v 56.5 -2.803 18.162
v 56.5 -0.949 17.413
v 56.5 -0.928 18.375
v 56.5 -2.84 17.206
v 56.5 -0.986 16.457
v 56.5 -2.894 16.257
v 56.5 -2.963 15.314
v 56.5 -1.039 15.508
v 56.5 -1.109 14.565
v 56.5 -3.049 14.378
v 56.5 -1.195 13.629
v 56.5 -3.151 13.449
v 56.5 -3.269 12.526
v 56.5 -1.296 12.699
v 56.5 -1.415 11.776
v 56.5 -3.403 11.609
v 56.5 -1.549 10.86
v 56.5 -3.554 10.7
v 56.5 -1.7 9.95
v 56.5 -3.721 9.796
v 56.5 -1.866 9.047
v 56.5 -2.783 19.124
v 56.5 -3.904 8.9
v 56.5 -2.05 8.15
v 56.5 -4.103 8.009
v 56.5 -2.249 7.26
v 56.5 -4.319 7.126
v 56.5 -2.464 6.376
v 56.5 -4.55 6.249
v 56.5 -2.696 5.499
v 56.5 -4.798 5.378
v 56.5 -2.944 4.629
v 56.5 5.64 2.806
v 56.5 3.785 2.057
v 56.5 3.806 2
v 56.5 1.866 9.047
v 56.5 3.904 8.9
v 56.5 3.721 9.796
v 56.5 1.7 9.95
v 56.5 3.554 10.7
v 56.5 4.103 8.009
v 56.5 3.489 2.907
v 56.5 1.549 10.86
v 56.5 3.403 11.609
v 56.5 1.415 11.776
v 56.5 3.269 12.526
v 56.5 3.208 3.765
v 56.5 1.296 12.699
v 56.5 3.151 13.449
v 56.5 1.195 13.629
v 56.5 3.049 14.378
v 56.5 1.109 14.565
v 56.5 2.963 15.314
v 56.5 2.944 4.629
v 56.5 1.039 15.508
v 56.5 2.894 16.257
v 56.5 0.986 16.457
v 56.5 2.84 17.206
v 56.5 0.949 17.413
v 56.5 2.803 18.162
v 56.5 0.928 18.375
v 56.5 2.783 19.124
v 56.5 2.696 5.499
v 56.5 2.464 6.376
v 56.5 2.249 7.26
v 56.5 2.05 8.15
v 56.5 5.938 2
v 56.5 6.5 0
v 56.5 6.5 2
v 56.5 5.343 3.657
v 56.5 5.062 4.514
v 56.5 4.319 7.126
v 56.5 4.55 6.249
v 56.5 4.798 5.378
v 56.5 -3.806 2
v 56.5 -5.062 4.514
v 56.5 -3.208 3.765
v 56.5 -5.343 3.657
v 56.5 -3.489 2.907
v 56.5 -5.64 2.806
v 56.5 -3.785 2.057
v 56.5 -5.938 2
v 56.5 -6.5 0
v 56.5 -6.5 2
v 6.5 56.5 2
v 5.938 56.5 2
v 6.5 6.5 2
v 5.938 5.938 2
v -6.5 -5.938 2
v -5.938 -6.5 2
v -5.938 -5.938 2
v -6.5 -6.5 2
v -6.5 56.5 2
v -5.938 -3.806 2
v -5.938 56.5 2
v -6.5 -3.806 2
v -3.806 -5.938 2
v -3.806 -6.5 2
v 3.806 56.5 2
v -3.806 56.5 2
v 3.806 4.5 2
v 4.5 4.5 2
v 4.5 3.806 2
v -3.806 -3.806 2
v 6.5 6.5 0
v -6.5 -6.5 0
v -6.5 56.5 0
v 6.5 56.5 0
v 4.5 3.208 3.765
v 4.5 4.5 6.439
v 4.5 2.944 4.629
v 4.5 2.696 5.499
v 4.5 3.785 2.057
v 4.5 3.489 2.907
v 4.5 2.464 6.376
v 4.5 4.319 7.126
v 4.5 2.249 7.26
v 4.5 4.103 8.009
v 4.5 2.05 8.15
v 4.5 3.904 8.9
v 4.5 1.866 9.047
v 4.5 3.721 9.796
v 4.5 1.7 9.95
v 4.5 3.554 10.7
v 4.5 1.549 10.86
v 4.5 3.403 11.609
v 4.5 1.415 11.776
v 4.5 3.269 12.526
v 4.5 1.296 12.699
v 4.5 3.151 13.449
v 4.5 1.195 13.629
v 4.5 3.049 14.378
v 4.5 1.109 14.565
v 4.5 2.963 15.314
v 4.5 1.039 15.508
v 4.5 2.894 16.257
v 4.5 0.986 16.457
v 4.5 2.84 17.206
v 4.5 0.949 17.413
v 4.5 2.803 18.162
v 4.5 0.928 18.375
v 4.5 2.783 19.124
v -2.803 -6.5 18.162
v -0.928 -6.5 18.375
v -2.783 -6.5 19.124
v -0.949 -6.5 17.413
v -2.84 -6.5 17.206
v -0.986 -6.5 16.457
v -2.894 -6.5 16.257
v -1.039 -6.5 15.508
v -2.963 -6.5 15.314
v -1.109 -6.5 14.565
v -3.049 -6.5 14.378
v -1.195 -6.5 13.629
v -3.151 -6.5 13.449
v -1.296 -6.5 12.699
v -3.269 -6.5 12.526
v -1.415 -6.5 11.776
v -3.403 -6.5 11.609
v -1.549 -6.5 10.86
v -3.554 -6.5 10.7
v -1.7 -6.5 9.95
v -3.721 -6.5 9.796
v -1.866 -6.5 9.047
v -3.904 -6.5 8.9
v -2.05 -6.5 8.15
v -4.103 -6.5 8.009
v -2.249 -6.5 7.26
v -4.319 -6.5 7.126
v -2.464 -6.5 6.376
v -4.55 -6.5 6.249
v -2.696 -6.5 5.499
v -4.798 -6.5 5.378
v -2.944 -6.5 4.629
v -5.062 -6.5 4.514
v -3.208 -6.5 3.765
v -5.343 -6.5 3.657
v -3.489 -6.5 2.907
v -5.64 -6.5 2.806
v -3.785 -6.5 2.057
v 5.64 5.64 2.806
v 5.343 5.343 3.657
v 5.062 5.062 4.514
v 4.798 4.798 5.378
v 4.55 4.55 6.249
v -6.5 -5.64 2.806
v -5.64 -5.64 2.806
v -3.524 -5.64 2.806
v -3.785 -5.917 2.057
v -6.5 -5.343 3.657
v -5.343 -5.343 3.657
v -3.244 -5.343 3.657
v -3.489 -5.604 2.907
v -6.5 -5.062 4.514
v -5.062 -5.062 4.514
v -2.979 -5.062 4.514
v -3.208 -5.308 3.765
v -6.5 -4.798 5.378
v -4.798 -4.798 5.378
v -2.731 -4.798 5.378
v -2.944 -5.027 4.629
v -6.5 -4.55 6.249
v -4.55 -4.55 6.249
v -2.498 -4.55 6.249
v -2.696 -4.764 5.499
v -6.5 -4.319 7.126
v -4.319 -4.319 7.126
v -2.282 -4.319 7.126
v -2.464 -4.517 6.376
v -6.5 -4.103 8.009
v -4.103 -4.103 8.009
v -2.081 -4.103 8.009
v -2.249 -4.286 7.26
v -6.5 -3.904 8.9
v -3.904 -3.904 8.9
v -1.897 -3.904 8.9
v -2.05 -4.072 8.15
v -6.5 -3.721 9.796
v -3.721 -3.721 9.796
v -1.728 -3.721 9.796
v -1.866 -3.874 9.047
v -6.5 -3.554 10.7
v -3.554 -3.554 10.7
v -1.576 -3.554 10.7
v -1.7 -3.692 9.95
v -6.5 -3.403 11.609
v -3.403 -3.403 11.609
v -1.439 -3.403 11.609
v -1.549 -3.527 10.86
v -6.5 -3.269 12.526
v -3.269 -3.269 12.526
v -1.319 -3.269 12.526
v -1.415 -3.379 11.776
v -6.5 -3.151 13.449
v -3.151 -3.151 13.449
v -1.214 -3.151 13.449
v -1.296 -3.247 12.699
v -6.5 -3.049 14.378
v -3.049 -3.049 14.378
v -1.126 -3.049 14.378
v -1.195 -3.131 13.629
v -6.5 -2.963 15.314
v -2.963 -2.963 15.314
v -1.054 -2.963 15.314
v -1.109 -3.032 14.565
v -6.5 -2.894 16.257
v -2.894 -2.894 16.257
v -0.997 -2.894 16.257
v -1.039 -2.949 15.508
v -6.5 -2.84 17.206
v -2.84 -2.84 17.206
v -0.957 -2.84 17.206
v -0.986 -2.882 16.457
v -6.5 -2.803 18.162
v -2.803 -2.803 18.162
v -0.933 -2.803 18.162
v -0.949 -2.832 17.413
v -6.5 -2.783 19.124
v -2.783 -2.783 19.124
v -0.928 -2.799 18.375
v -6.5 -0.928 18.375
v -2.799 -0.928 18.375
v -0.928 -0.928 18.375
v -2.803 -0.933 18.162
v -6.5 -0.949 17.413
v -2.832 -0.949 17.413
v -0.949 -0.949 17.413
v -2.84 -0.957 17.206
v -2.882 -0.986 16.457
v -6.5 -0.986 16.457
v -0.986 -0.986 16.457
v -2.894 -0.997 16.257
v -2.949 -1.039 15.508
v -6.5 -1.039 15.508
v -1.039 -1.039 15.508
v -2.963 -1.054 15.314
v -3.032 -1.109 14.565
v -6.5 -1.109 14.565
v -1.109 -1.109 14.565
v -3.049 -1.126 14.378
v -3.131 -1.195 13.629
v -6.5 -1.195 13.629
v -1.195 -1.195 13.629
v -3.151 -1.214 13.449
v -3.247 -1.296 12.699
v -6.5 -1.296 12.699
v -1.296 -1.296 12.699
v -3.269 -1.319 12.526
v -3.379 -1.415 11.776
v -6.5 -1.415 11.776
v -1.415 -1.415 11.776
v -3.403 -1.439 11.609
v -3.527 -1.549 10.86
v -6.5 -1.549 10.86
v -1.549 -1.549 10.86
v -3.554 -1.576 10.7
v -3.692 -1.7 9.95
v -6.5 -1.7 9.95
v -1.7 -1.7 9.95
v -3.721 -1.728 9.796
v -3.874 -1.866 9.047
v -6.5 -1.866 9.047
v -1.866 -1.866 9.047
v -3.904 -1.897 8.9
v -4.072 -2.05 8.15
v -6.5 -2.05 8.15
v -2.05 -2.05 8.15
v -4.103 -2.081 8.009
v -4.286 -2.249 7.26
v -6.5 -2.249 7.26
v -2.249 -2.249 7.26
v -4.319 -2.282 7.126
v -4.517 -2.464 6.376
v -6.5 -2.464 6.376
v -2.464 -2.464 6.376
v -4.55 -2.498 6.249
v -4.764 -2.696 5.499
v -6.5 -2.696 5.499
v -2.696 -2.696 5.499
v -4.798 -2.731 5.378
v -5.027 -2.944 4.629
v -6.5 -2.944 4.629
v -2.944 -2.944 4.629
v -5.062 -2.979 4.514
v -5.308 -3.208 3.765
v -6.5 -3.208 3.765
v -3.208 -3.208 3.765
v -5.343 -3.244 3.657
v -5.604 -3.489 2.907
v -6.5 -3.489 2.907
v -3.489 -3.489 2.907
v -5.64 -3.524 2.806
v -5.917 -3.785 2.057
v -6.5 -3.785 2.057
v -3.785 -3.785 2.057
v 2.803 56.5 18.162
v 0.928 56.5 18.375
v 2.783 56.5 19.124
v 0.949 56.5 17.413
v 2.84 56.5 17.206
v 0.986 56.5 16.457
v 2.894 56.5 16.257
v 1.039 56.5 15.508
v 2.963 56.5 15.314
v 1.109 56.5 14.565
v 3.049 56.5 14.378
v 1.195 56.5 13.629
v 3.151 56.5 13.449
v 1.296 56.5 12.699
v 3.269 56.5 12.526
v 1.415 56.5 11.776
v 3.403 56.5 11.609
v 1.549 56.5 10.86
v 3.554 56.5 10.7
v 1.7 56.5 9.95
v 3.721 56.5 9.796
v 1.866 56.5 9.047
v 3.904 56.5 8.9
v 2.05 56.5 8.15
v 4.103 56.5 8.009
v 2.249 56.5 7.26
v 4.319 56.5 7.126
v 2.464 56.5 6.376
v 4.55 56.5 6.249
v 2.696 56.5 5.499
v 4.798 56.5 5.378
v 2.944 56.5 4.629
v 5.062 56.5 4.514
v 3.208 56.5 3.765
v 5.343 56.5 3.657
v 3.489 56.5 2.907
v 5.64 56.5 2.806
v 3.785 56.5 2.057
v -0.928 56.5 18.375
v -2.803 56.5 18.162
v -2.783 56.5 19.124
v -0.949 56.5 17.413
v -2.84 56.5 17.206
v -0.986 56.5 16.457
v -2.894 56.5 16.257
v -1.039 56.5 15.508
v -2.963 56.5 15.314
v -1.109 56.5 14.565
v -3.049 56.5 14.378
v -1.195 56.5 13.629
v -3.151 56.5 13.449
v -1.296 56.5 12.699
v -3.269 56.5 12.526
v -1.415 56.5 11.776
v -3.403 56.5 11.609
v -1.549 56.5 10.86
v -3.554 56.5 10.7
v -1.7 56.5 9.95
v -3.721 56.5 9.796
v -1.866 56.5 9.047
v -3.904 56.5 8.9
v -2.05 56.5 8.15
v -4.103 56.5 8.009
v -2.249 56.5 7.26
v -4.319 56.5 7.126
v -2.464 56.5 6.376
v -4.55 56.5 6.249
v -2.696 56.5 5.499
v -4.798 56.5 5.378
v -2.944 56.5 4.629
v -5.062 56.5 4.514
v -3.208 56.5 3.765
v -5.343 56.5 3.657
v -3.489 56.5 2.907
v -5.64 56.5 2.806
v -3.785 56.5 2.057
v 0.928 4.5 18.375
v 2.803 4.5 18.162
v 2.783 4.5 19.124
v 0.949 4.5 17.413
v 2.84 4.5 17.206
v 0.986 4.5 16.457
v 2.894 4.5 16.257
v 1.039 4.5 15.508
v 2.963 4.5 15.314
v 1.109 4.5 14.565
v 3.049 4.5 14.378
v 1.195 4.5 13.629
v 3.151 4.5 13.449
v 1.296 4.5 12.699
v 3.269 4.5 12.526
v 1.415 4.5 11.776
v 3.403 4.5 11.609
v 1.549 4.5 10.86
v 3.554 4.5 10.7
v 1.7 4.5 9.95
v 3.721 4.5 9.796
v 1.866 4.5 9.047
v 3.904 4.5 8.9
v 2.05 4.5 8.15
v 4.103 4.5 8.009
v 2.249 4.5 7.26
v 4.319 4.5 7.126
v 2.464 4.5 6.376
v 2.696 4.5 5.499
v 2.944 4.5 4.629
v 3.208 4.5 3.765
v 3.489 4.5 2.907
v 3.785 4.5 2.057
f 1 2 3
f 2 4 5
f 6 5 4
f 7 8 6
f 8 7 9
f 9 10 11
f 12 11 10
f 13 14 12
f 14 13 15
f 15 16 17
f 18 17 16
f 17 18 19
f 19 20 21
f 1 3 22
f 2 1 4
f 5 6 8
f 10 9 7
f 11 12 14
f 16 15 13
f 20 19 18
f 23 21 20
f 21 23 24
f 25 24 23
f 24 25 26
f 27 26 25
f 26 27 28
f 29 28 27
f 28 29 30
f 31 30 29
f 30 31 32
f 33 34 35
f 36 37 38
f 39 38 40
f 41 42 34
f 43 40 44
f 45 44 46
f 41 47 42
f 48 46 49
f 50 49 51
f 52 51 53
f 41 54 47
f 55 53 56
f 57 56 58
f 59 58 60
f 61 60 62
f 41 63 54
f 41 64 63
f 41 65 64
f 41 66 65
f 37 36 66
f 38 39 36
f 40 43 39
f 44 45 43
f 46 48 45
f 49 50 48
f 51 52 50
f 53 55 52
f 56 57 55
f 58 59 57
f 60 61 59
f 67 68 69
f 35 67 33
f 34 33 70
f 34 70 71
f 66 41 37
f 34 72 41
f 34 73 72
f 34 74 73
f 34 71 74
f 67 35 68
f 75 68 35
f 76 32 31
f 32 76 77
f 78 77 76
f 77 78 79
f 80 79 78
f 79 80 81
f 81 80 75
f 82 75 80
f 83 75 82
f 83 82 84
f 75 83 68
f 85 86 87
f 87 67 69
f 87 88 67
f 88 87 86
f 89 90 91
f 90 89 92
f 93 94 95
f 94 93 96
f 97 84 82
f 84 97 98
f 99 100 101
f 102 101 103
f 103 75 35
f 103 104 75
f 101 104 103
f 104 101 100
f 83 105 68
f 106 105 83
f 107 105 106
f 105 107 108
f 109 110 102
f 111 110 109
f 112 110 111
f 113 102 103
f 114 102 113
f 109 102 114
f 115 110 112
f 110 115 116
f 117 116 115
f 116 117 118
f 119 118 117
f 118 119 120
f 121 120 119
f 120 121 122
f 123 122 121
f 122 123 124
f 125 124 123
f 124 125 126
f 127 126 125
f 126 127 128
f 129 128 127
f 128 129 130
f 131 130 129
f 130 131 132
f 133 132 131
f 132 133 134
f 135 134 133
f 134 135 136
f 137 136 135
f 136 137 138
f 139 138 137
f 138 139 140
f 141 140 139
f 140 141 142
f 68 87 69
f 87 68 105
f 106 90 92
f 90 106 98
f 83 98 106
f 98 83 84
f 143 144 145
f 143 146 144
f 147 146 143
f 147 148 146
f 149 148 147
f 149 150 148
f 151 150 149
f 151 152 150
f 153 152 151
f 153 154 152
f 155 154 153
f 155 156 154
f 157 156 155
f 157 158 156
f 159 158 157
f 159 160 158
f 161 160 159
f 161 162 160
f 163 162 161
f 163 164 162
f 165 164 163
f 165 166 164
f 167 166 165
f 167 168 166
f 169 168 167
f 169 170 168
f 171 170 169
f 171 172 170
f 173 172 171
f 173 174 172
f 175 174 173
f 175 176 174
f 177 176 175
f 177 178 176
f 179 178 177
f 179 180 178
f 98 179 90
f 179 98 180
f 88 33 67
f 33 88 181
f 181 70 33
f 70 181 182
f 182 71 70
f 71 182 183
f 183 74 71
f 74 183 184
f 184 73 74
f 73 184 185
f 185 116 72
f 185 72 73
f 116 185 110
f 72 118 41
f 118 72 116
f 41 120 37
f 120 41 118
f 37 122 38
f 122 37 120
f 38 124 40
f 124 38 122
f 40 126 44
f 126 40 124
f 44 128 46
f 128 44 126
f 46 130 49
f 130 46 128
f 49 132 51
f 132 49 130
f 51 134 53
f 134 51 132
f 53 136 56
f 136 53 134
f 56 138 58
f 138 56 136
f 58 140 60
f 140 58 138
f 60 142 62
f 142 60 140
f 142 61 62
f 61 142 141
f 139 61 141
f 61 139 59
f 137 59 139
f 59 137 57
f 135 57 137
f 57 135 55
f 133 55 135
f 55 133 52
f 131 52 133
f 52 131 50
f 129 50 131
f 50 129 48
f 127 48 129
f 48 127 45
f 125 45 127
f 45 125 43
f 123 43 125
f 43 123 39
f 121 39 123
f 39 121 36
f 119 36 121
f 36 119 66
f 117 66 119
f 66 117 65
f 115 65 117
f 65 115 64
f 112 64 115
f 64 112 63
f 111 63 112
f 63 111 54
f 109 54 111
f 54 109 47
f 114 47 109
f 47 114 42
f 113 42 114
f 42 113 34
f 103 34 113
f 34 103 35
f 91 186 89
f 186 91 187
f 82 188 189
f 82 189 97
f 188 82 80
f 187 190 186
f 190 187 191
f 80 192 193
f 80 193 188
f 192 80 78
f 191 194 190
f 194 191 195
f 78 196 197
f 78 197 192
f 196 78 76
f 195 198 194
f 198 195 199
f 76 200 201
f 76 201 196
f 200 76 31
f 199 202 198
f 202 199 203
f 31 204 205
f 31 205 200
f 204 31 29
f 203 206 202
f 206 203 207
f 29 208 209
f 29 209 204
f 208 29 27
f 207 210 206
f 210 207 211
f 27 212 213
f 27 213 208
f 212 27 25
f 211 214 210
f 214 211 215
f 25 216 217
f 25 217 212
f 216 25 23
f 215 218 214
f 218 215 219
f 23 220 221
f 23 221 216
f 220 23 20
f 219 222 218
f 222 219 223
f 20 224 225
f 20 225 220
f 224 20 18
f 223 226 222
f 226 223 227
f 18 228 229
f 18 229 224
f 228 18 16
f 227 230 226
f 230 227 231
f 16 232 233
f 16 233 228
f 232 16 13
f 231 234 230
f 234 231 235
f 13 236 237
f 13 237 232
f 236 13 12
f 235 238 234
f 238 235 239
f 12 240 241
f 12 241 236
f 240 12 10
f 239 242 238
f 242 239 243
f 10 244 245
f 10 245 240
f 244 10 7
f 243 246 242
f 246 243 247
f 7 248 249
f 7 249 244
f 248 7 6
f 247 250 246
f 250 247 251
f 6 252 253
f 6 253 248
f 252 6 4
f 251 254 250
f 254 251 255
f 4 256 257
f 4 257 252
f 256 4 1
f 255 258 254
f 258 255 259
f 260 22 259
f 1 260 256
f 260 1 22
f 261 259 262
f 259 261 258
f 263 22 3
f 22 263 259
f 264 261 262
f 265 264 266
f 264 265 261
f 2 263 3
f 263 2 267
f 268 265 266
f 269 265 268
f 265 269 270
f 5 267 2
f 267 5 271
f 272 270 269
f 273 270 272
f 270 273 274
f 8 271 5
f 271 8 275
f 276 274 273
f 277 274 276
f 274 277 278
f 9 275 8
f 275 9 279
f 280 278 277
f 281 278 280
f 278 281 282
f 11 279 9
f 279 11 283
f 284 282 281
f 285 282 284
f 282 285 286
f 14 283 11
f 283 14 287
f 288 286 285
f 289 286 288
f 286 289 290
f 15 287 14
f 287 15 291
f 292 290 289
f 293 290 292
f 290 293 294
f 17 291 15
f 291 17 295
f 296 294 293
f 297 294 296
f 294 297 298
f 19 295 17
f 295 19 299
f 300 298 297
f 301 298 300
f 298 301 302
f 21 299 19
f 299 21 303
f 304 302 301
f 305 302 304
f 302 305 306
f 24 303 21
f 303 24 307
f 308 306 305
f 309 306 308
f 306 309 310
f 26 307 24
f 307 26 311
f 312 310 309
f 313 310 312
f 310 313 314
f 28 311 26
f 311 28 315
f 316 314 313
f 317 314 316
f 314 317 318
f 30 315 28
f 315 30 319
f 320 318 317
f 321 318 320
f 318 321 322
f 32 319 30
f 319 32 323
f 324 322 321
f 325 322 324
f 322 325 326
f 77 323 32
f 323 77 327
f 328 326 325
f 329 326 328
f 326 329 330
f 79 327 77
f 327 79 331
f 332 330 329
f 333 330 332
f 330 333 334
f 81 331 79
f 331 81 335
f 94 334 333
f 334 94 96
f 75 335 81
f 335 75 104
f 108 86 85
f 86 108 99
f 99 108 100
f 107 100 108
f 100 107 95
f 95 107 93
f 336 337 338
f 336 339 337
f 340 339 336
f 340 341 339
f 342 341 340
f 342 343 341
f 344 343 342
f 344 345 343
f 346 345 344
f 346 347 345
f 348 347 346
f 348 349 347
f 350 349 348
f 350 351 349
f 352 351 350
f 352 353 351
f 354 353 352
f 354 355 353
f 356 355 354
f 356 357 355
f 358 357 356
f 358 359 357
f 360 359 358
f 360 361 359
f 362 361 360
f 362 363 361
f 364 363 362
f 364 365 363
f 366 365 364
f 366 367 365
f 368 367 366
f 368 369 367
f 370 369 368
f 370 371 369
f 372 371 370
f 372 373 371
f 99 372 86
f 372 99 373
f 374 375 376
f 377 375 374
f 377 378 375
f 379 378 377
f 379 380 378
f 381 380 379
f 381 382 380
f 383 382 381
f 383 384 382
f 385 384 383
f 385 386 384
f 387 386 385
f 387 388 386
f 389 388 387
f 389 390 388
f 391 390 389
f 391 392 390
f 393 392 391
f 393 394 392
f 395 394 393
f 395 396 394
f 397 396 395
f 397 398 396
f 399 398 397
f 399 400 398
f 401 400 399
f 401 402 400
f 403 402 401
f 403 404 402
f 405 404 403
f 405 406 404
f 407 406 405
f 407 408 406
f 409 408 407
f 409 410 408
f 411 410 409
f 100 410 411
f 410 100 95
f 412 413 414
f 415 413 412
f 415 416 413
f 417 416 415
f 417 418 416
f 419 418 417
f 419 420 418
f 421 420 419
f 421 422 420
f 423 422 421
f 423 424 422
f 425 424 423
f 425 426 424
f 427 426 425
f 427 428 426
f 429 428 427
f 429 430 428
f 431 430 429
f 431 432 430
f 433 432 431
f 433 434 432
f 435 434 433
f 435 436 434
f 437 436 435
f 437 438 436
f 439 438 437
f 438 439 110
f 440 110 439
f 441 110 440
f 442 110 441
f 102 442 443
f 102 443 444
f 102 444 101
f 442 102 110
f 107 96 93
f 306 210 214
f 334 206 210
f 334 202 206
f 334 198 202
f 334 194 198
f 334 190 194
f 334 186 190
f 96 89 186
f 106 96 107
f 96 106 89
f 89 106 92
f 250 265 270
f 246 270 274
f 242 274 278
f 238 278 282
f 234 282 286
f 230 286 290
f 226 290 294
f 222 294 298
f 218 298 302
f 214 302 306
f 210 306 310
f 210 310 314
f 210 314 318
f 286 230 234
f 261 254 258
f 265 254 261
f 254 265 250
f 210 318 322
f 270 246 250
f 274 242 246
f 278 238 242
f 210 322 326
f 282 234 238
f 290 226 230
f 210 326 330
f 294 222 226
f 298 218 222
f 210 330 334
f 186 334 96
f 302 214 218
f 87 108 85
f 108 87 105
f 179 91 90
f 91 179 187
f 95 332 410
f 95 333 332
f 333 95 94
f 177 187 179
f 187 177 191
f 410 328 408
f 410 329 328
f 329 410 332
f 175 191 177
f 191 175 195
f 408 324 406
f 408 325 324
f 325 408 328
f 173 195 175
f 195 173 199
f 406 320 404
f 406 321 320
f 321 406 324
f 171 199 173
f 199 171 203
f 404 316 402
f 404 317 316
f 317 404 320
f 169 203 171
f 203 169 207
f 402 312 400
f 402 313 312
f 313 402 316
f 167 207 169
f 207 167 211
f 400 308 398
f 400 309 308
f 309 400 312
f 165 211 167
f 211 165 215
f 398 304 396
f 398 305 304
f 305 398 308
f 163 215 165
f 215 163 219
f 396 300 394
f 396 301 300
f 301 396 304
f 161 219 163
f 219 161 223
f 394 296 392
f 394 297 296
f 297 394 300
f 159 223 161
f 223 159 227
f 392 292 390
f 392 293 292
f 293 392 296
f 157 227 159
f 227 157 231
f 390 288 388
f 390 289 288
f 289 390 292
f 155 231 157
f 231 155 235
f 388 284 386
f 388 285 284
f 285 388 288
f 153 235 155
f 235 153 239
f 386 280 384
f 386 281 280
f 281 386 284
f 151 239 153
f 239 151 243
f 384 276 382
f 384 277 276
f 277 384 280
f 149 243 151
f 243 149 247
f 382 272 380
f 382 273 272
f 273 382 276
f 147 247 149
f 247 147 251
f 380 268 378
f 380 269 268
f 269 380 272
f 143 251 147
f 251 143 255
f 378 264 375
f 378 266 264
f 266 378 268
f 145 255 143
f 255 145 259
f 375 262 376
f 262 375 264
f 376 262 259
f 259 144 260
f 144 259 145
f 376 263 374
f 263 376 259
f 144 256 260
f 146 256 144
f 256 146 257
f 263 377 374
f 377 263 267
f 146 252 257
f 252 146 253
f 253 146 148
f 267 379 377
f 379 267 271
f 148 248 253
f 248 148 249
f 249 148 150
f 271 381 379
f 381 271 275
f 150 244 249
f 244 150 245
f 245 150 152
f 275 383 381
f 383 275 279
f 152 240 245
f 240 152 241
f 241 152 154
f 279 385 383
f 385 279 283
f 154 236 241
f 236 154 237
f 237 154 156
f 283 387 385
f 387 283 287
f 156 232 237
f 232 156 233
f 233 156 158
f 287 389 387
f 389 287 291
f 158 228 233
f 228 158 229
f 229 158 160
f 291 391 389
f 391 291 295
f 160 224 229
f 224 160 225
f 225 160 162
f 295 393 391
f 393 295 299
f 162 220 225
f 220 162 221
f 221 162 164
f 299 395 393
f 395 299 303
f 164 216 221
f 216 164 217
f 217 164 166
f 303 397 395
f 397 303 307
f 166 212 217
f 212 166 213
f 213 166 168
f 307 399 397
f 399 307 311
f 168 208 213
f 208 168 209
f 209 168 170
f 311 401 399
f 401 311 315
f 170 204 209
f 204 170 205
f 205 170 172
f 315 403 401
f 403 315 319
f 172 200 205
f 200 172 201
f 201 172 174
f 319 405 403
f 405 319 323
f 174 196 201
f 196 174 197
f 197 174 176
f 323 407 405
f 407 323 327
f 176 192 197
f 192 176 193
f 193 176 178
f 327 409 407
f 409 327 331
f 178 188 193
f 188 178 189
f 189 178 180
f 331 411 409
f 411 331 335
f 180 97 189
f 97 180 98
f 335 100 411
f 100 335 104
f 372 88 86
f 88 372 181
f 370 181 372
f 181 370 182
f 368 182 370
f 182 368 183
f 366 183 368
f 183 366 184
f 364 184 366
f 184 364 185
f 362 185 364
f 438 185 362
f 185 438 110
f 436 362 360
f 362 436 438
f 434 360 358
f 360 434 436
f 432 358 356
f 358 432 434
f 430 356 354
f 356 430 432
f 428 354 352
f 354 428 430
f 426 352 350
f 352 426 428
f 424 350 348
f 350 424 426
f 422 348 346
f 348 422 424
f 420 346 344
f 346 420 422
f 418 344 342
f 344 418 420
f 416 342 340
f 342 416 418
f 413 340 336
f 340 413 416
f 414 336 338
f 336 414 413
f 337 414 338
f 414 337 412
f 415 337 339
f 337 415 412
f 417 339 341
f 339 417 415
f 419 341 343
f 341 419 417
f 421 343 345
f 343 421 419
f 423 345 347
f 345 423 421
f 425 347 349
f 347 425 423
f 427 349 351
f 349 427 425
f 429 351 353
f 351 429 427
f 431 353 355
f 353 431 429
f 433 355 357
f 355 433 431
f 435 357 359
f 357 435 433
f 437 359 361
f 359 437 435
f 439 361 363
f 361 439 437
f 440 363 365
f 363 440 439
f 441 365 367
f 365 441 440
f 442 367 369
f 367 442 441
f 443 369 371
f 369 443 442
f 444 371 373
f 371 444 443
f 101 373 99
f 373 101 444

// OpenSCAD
use <common.scad>

// Угловой соединитель с гибкими стенками (L-образный)
// Выходы: право (0) и перед (1)
// Гибкие стенки для картона

union() {
    // Основание центра
    draw_center_base(with_dowel = false);

    // Гибкие стенки центра на двух сторонах без выходов
    place_center_wall(2, "flexible");  // лево - закрыто гибкой стенкой
    place_center_wall(3, "flexible");  // назад - закрыто гибкой стенкой

    // Рукава на сторонах с выходами с гибкими стенками
    place_sleeve(0, with_dowel = false, wall_type = "flexible");  // право
    place_sleeve(1, with_dowel = false, wall_type = "flexible");  // перед
}
